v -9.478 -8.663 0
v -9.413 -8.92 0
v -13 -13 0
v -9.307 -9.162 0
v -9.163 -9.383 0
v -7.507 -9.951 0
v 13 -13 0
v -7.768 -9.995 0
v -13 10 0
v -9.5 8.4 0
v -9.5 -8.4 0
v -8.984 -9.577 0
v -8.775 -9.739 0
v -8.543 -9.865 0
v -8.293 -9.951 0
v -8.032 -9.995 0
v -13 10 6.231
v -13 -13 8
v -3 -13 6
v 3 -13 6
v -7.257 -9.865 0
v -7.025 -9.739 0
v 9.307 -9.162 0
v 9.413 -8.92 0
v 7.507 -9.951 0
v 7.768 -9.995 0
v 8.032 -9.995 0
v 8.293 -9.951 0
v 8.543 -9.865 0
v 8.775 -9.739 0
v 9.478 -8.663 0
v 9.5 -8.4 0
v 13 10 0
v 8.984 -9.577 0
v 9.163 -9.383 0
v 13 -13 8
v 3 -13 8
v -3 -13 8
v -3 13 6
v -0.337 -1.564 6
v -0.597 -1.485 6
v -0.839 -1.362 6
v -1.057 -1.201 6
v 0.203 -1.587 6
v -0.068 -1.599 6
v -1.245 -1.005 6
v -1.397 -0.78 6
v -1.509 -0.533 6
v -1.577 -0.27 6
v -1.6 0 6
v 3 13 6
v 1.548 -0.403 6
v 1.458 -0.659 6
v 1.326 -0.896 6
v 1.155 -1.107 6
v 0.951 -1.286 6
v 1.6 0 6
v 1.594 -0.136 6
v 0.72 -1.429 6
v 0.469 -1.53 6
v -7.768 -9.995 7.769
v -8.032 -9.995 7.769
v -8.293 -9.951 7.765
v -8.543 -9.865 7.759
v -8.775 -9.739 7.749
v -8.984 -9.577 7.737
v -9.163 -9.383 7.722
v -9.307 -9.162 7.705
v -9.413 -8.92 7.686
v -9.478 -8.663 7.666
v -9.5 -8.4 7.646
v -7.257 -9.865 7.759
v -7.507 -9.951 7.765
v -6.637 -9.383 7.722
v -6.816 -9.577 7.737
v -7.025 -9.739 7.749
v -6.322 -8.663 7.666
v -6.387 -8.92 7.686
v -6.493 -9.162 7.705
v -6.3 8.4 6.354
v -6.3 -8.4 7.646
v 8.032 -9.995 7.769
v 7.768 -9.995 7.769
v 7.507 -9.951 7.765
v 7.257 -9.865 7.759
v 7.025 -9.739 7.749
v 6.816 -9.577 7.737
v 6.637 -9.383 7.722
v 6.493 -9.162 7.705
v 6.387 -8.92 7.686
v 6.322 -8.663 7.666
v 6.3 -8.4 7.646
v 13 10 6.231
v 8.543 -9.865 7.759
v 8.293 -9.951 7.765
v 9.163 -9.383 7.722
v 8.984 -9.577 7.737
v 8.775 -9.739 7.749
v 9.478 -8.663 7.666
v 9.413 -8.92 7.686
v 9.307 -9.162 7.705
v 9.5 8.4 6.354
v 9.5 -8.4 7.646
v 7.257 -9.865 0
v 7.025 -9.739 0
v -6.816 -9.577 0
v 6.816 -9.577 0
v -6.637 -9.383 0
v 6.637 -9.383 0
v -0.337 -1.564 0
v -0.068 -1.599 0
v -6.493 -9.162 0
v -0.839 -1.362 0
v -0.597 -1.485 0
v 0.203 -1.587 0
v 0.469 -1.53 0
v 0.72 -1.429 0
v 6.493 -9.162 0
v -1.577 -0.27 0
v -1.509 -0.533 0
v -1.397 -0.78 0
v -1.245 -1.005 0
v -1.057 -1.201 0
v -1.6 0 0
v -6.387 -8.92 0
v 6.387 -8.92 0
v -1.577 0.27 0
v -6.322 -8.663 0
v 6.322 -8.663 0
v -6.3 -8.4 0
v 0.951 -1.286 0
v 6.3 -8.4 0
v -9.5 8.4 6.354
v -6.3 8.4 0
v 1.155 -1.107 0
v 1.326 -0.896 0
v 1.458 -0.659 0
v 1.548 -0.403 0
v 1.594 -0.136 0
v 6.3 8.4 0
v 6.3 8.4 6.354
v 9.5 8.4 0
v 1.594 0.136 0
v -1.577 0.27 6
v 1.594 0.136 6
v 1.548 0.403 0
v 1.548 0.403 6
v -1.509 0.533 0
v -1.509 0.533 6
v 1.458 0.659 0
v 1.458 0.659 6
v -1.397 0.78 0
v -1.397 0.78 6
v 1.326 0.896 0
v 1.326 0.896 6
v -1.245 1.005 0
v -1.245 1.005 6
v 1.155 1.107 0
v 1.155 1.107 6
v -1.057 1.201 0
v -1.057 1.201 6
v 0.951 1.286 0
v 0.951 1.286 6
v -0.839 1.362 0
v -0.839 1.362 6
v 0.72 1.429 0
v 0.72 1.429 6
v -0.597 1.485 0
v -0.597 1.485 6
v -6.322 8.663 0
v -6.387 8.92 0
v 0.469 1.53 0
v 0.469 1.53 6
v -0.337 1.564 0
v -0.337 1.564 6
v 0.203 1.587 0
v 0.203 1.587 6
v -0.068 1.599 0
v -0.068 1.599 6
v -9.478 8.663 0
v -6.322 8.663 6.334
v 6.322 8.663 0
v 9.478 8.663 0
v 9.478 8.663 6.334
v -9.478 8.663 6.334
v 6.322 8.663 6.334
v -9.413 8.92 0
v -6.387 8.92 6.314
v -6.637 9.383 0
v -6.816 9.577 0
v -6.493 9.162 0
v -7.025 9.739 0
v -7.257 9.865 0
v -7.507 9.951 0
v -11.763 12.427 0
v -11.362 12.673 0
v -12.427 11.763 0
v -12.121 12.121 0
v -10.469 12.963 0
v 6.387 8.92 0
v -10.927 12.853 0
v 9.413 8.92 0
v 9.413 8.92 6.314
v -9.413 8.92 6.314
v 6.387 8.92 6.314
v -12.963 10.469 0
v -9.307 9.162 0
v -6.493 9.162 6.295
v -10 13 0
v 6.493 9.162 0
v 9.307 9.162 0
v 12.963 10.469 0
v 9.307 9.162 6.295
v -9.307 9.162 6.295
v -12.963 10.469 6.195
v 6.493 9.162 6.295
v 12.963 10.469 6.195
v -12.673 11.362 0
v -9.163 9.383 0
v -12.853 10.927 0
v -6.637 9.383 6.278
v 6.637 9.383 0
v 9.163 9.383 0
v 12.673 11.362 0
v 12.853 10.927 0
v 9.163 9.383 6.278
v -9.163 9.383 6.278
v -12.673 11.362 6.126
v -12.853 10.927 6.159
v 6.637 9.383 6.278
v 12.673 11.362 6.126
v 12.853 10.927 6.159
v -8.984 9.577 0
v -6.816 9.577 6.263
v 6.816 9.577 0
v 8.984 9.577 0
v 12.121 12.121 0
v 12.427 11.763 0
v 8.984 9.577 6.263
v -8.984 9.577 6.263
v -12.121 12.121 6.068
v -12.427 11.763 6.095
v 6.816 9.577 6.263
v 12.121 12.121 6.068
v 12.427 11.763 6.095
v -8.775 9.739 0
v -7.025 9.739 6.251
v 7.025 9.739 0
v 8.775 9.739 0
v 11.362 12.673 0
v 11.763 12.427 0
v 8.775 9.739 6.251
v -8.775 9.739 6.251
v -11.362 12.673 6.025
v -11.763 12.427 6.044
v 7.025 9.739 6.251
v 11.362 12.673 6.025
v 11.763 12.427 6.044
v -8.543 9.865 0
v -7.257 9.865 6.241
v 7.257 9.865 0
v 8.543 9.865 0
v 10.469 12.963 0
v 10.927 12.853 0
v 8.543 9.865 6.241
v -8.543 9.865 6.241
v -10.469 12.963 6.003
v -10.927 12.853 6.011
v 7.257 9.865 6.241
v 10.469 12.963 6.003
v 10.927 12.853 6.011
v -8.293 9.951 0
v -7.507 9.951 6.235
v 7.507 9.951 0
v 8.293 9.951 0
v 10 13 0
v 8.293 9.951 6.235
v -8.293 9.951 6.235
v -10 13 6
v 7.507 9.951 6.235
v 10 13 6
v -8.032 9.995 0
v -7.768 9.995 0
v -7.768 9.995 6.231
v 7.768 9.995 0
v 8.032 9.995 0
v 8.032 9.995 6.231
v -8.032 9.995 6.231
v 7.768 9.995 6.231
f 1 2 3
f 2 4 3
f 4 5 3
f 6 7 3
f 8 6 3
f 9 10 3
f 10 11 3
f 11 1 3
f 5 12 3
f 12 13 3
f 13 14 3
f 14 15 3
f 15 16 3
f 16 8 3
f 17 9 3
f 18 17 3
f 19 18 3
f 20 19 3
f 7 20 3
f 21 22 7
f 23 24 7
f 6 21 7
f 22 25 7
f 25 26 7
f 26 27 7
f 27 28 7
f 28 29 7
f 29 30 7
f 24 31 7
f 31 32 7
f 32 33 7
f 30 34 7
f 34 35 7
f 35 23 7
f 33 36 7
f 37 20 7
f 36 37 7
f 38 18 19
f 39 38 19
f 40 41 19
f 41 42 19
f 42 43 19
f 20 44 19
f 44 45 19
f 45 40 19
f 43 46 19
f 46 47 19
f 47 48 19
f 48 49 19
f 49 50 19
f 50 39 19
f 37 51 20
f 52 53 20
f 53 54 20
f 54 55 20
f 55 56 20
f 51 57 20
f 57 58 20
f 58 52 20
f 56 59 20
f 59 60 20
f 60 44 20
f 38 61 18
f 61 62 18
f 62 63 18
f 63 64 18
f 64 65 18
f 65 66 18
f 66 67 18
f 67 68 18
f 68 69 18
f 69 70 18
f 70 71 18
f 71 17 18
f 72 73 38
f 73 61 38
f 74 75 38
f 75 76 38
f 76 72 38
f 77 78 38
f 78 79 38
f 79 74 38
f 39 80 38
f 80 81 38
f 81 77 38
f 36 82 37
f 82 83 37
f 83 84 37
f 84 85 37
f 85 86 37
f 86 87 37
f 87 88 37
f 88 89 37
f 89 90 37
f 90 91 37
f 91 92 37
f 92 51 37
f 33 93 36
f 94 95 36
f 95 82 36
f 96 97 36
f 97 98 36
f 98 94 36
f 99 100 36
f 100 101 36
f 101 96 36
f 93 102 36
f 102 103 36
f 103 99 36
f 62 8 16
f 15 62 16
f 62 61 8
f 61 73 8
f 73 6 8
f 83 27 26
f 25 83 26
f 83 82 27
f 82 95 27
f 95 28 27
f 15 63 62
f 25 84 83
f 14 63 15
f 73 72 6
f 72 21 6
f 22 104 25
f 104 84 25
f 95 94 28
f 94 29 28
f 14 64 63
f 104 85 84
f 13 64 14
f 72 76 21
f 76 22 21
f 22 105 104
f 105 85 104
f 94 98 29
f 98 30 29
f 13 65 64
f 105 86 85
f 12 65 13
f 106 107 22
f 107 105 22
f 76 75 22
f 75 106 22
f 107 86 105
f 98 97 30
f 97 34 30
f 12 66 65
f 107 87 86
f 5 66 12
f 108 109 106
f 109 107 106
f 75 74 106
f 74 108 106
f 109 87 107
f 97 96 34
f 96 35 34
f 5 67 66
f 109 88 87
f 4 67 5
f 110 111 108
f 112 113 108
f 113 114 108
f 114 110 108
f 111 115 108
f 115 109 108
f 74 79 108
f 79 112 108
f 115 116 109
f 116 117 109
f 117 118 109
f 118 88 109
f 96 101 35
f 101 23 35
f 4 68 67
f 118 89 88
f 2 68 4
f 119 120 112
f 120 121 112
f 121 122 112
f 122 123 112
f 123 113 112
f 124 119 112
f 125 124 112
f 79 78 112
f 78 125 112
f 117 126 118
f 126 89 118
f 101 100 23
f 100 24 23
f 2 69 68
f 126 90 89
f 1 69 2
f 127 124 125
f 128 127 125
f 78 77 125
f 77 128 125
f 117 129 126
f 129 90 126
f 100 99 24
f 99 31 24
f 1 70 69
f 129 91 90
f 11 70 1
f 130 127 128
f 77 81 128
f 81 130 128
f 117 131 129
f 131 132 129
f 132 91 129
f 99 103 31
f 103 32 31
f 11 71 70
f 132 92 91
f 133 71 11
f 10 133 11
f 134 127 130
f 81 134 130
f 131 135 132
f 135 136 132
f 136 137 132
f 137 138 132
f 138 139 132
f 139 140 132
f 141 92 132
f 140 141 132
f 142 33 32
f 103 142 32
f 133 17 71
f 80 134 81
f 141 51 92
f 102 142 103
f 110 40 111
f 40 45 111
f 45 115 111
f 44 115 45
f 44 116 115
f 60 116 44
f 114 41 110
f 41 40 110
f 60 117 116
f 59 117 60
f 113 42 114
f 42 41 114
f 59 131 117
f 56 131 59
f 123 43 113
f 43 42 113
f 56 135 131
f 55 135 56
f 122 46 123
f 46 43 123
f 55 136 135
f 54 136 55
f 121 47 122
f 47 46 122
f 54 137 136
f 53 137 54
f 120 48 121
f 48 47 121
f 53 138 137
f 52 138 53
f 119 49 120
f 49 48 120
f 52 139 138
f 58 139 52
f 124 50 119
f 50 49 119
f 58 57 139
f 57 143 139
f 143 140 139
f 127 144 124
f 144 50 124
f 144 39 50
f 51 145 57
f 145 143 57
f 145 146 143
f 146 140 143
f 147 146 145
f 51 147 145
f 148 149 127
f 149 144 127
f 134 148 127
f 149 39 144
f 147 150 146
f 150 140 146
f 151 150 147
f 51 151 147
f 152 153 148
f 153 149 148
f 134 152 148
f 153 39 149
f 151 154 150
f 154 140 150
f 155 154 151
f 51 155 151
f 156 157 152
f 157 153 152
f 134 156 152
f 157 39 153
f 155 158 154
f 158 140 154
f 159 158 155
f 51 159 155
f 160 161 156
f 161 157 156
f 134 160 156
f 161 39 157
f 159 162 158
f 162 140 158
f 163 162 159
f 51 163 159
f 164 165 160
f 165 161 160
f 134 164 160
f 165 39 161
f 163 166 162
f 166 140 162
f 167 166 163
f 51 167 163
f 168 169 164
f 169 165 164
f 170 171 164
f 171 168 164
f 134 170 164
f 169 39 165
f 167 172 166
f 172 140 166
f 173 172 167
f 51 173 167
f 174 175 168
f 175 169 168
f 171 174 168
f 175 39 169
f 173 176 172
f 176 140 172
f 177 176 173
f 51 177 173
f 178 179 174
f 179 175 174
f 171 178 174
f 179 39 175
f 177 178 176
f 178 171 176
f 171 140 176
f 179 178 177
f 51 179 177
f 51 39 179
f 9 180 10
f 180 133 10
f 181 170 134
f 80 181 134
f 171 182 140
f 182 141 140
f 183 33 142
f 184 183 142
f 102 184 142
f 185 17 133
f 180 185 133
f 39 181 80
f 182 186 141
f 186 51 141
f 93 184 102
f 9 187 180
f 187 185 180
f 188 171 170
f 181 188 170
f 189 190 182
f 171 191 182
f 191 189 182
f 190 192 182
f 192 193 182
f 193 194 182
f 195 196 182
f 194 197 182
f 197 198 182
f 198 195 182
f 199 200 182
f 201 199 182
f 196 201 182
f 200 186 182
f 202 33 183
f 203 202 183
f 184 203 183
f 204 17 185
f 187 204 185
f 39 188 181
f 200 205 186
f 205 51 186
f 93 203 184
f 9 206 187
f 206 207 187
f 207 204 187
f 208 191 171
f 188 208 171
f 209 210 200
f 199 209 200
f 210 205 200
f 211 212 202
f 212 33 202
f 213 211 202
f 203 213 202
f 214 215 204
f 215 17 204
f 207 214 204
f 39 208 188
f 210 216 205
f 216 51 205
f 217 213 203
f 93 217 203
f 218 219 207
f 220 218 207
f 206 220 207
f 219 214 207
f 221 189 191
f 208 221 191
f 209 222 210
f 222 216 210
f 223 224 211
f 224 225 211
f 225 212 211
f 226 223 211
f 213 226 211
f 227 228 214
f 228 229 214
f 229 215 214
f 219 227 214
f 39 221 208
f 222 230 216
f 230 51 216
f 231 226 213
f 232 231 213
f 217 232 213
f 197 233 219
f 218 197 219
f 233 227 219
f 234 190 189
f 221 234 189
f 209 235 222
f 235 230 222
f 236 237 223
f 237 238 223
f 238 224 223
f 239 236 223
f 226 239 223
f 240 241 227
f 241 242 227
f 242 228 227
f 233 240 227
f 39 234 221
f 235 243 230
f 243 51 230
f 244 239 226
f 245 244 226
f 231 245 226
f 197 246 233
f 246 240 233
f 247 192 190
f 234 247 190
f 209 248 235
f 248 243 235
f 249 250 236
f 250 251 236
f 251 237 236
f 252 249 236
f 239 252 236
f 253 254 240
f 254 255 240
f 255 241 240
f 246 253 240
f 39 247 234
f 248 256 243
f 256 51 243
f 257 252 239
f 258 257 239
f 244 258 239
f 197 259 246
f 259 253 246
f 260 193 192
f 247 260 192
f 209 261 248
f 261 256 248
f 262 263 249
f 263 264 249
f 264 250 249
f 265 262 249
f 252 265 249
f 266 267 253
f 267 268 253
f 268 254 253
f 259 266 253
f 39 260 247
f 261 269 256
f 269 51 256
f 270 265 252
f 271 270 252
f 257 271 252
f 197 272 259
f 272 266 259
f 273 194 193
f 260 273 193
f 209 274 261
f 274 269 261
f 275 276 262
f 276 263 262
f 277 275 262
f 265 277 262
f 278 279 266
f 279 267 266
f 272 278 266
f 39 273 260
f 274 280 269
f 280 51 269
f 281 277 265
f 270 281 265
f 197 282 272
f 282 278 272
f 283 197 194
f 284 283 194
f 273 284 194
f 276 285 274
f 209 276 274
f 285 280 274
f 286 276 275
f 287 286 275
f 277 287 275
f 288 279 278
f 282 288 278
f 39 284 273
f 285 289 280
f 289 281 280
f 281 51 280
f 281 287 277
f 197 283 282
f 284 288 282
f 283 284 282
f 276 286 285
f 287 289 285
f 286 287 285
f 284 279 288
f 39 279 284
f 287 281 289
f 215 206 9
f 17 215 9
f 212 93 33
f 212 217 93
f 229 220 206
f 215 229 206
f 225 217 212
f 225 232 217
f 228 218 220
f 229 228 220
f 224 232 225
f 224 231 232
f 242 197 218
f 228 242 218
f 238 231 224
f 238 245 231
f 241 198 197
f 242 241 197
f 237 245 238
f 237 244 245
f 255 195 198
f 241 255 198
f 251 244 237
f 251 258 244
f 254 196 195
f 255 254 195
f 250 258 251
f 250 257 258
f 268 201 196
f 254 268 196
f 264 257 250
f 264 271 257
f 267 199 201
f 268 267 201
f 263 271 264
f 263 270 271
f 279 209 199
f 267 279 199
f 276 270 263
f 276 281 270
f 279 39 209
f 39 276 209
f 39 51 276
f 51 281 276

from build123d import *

# Parameters (mm, degrees)
SKETCH_1_W               = 26
SKETCH_1_H               = 26
EXTRUDE_1_DEPTH          = 8
CUT_EXTRUDE_1_DEPTH      = 21.049937656
CUT_EXTRUDE_1_DEPTH_BACK = 21.049937656
SKETCH_2_OUTSIDE_W       = 17.526
SKETCH_2_OUTSIDE_H       = 35.526
HOLE_WIZARD_M3_1_D       = 3.2
SKETCH_4_OUTSIDE_W       = 17.526
SKETCH_4_OUTSIDE_H       = 35.526
SKETCH_4_OUTSIDE_W_2     = 6
SKETCH_4_OUTSIDE_H_2     = 26
CUT_EXTRUDE_2_DEPTH      = 3
FILLET_1_R               = 3


with BuildPart() as part:
    # ｽｹｯﾁ1 → ﾎﾞｽ - 押し出し1 (new body)
    with BuildSketch(Plane.XY):
        Rectangle(SKETCH_1_W, SKETCH_1_H)
        with BuildLine():
            Line((-6.3, 8.4), (-6.3, -8.4))
            ThreePointArc((-6.3, -8.4), (-7.9, -10), (-9.5, -8.4))
            Line((-9.5, -8.4), (-9.5, 8.4))
            ThreePointArc((-9.5, 8.4), (-7.9, 10), (-6.3, 8.4))
        make_face(mode=Mode.SUBTRACT)
        with BuildLine():
            Line((9.5, 8.4), (9.5, -8.4))
            ThreePointArc((9.5, -8.4), (7.9, -10), (6.3, -8.4))
            Line((6.3, -8.4), (6.3, 8.4))
            ThreePointArc((6.3, 8.4), (7.9, 10), (9.5, 8.4))
        make_face(mode=Mode.SUBTRACT)
    extrude(amount=EXTRUDE_1_DEPTH)

    # ｽｹｯﾁ2 outside → ｶｯﾄ - 押し出し1 (cut, two sides: drawn at the far end of the back side and taken through both)
    with BuildSketch(Plane(origin=(0, 0, 0), x_dir=(0, 0, -1), z_dir=(1, 0, 0)).offset(-CUT_EXTRUDE_1_DEPTH_BACK)):
        with Locations((-4, 0)):
            Rectangle(SKETCH_2_OUTSIDE_W, SKETCH_2_OUTSIDE_H)
        Polygon((0, -13), (-8, -13), (-6, 13), (0, 13), align=None, mode=Mode.SUBTRACT)
    extrude(amount=CUT_EXTRUDE_1_DEPTH + CUT_EXTRUDE_1_DEPTH_BACK, mode=Mode.SUBTRACT)

    # M3 すきま穴1 (through all)
    with Locations(Plane(origin=(0, 0, 0), x_dir=(-1, 0, 0), z_dir=(0, 0, -1))):
        with Locations((0, 0)):
            Hole(HOLE_WIZARD_M3_1_D / 2)

    # ｽｹｯﾁ4 outside → ｶｯﾄ - 押し出し2 (cut, symmetric)
    with BuildSketch(Plane(origin=(0, 0, 0), x_dir=(0, 0, -1), z_dir=(1, 0, 0))):
        with Locations((-4, 0)):
            Rectangle(SKETCH_4_OUTSIDE_W, SKETCH_4_OUTSIDE_H)
        with Locations((-3, 0)):
            Rectangle(SKETCH_4_OUTSIDE_W_2, SKETCH_4_OUTSIDE_H_2, mode=Mode.SUBTRACT)
    extrude(amount=CUT_EXTRUDE_2_DEPTH, both=True, mode=Mode.SUBTRACT)

    # ﾌｨﾚｯﾄ1
    fillet_1_edges = [part.edges().sort_by_distance(p)[0] for p in [
        (-13, 13, 3),
        (13, 13, 3),
    ]]
    fillet(fillet_1_edges, radius=FILLET_1_R)


solid = part.part
